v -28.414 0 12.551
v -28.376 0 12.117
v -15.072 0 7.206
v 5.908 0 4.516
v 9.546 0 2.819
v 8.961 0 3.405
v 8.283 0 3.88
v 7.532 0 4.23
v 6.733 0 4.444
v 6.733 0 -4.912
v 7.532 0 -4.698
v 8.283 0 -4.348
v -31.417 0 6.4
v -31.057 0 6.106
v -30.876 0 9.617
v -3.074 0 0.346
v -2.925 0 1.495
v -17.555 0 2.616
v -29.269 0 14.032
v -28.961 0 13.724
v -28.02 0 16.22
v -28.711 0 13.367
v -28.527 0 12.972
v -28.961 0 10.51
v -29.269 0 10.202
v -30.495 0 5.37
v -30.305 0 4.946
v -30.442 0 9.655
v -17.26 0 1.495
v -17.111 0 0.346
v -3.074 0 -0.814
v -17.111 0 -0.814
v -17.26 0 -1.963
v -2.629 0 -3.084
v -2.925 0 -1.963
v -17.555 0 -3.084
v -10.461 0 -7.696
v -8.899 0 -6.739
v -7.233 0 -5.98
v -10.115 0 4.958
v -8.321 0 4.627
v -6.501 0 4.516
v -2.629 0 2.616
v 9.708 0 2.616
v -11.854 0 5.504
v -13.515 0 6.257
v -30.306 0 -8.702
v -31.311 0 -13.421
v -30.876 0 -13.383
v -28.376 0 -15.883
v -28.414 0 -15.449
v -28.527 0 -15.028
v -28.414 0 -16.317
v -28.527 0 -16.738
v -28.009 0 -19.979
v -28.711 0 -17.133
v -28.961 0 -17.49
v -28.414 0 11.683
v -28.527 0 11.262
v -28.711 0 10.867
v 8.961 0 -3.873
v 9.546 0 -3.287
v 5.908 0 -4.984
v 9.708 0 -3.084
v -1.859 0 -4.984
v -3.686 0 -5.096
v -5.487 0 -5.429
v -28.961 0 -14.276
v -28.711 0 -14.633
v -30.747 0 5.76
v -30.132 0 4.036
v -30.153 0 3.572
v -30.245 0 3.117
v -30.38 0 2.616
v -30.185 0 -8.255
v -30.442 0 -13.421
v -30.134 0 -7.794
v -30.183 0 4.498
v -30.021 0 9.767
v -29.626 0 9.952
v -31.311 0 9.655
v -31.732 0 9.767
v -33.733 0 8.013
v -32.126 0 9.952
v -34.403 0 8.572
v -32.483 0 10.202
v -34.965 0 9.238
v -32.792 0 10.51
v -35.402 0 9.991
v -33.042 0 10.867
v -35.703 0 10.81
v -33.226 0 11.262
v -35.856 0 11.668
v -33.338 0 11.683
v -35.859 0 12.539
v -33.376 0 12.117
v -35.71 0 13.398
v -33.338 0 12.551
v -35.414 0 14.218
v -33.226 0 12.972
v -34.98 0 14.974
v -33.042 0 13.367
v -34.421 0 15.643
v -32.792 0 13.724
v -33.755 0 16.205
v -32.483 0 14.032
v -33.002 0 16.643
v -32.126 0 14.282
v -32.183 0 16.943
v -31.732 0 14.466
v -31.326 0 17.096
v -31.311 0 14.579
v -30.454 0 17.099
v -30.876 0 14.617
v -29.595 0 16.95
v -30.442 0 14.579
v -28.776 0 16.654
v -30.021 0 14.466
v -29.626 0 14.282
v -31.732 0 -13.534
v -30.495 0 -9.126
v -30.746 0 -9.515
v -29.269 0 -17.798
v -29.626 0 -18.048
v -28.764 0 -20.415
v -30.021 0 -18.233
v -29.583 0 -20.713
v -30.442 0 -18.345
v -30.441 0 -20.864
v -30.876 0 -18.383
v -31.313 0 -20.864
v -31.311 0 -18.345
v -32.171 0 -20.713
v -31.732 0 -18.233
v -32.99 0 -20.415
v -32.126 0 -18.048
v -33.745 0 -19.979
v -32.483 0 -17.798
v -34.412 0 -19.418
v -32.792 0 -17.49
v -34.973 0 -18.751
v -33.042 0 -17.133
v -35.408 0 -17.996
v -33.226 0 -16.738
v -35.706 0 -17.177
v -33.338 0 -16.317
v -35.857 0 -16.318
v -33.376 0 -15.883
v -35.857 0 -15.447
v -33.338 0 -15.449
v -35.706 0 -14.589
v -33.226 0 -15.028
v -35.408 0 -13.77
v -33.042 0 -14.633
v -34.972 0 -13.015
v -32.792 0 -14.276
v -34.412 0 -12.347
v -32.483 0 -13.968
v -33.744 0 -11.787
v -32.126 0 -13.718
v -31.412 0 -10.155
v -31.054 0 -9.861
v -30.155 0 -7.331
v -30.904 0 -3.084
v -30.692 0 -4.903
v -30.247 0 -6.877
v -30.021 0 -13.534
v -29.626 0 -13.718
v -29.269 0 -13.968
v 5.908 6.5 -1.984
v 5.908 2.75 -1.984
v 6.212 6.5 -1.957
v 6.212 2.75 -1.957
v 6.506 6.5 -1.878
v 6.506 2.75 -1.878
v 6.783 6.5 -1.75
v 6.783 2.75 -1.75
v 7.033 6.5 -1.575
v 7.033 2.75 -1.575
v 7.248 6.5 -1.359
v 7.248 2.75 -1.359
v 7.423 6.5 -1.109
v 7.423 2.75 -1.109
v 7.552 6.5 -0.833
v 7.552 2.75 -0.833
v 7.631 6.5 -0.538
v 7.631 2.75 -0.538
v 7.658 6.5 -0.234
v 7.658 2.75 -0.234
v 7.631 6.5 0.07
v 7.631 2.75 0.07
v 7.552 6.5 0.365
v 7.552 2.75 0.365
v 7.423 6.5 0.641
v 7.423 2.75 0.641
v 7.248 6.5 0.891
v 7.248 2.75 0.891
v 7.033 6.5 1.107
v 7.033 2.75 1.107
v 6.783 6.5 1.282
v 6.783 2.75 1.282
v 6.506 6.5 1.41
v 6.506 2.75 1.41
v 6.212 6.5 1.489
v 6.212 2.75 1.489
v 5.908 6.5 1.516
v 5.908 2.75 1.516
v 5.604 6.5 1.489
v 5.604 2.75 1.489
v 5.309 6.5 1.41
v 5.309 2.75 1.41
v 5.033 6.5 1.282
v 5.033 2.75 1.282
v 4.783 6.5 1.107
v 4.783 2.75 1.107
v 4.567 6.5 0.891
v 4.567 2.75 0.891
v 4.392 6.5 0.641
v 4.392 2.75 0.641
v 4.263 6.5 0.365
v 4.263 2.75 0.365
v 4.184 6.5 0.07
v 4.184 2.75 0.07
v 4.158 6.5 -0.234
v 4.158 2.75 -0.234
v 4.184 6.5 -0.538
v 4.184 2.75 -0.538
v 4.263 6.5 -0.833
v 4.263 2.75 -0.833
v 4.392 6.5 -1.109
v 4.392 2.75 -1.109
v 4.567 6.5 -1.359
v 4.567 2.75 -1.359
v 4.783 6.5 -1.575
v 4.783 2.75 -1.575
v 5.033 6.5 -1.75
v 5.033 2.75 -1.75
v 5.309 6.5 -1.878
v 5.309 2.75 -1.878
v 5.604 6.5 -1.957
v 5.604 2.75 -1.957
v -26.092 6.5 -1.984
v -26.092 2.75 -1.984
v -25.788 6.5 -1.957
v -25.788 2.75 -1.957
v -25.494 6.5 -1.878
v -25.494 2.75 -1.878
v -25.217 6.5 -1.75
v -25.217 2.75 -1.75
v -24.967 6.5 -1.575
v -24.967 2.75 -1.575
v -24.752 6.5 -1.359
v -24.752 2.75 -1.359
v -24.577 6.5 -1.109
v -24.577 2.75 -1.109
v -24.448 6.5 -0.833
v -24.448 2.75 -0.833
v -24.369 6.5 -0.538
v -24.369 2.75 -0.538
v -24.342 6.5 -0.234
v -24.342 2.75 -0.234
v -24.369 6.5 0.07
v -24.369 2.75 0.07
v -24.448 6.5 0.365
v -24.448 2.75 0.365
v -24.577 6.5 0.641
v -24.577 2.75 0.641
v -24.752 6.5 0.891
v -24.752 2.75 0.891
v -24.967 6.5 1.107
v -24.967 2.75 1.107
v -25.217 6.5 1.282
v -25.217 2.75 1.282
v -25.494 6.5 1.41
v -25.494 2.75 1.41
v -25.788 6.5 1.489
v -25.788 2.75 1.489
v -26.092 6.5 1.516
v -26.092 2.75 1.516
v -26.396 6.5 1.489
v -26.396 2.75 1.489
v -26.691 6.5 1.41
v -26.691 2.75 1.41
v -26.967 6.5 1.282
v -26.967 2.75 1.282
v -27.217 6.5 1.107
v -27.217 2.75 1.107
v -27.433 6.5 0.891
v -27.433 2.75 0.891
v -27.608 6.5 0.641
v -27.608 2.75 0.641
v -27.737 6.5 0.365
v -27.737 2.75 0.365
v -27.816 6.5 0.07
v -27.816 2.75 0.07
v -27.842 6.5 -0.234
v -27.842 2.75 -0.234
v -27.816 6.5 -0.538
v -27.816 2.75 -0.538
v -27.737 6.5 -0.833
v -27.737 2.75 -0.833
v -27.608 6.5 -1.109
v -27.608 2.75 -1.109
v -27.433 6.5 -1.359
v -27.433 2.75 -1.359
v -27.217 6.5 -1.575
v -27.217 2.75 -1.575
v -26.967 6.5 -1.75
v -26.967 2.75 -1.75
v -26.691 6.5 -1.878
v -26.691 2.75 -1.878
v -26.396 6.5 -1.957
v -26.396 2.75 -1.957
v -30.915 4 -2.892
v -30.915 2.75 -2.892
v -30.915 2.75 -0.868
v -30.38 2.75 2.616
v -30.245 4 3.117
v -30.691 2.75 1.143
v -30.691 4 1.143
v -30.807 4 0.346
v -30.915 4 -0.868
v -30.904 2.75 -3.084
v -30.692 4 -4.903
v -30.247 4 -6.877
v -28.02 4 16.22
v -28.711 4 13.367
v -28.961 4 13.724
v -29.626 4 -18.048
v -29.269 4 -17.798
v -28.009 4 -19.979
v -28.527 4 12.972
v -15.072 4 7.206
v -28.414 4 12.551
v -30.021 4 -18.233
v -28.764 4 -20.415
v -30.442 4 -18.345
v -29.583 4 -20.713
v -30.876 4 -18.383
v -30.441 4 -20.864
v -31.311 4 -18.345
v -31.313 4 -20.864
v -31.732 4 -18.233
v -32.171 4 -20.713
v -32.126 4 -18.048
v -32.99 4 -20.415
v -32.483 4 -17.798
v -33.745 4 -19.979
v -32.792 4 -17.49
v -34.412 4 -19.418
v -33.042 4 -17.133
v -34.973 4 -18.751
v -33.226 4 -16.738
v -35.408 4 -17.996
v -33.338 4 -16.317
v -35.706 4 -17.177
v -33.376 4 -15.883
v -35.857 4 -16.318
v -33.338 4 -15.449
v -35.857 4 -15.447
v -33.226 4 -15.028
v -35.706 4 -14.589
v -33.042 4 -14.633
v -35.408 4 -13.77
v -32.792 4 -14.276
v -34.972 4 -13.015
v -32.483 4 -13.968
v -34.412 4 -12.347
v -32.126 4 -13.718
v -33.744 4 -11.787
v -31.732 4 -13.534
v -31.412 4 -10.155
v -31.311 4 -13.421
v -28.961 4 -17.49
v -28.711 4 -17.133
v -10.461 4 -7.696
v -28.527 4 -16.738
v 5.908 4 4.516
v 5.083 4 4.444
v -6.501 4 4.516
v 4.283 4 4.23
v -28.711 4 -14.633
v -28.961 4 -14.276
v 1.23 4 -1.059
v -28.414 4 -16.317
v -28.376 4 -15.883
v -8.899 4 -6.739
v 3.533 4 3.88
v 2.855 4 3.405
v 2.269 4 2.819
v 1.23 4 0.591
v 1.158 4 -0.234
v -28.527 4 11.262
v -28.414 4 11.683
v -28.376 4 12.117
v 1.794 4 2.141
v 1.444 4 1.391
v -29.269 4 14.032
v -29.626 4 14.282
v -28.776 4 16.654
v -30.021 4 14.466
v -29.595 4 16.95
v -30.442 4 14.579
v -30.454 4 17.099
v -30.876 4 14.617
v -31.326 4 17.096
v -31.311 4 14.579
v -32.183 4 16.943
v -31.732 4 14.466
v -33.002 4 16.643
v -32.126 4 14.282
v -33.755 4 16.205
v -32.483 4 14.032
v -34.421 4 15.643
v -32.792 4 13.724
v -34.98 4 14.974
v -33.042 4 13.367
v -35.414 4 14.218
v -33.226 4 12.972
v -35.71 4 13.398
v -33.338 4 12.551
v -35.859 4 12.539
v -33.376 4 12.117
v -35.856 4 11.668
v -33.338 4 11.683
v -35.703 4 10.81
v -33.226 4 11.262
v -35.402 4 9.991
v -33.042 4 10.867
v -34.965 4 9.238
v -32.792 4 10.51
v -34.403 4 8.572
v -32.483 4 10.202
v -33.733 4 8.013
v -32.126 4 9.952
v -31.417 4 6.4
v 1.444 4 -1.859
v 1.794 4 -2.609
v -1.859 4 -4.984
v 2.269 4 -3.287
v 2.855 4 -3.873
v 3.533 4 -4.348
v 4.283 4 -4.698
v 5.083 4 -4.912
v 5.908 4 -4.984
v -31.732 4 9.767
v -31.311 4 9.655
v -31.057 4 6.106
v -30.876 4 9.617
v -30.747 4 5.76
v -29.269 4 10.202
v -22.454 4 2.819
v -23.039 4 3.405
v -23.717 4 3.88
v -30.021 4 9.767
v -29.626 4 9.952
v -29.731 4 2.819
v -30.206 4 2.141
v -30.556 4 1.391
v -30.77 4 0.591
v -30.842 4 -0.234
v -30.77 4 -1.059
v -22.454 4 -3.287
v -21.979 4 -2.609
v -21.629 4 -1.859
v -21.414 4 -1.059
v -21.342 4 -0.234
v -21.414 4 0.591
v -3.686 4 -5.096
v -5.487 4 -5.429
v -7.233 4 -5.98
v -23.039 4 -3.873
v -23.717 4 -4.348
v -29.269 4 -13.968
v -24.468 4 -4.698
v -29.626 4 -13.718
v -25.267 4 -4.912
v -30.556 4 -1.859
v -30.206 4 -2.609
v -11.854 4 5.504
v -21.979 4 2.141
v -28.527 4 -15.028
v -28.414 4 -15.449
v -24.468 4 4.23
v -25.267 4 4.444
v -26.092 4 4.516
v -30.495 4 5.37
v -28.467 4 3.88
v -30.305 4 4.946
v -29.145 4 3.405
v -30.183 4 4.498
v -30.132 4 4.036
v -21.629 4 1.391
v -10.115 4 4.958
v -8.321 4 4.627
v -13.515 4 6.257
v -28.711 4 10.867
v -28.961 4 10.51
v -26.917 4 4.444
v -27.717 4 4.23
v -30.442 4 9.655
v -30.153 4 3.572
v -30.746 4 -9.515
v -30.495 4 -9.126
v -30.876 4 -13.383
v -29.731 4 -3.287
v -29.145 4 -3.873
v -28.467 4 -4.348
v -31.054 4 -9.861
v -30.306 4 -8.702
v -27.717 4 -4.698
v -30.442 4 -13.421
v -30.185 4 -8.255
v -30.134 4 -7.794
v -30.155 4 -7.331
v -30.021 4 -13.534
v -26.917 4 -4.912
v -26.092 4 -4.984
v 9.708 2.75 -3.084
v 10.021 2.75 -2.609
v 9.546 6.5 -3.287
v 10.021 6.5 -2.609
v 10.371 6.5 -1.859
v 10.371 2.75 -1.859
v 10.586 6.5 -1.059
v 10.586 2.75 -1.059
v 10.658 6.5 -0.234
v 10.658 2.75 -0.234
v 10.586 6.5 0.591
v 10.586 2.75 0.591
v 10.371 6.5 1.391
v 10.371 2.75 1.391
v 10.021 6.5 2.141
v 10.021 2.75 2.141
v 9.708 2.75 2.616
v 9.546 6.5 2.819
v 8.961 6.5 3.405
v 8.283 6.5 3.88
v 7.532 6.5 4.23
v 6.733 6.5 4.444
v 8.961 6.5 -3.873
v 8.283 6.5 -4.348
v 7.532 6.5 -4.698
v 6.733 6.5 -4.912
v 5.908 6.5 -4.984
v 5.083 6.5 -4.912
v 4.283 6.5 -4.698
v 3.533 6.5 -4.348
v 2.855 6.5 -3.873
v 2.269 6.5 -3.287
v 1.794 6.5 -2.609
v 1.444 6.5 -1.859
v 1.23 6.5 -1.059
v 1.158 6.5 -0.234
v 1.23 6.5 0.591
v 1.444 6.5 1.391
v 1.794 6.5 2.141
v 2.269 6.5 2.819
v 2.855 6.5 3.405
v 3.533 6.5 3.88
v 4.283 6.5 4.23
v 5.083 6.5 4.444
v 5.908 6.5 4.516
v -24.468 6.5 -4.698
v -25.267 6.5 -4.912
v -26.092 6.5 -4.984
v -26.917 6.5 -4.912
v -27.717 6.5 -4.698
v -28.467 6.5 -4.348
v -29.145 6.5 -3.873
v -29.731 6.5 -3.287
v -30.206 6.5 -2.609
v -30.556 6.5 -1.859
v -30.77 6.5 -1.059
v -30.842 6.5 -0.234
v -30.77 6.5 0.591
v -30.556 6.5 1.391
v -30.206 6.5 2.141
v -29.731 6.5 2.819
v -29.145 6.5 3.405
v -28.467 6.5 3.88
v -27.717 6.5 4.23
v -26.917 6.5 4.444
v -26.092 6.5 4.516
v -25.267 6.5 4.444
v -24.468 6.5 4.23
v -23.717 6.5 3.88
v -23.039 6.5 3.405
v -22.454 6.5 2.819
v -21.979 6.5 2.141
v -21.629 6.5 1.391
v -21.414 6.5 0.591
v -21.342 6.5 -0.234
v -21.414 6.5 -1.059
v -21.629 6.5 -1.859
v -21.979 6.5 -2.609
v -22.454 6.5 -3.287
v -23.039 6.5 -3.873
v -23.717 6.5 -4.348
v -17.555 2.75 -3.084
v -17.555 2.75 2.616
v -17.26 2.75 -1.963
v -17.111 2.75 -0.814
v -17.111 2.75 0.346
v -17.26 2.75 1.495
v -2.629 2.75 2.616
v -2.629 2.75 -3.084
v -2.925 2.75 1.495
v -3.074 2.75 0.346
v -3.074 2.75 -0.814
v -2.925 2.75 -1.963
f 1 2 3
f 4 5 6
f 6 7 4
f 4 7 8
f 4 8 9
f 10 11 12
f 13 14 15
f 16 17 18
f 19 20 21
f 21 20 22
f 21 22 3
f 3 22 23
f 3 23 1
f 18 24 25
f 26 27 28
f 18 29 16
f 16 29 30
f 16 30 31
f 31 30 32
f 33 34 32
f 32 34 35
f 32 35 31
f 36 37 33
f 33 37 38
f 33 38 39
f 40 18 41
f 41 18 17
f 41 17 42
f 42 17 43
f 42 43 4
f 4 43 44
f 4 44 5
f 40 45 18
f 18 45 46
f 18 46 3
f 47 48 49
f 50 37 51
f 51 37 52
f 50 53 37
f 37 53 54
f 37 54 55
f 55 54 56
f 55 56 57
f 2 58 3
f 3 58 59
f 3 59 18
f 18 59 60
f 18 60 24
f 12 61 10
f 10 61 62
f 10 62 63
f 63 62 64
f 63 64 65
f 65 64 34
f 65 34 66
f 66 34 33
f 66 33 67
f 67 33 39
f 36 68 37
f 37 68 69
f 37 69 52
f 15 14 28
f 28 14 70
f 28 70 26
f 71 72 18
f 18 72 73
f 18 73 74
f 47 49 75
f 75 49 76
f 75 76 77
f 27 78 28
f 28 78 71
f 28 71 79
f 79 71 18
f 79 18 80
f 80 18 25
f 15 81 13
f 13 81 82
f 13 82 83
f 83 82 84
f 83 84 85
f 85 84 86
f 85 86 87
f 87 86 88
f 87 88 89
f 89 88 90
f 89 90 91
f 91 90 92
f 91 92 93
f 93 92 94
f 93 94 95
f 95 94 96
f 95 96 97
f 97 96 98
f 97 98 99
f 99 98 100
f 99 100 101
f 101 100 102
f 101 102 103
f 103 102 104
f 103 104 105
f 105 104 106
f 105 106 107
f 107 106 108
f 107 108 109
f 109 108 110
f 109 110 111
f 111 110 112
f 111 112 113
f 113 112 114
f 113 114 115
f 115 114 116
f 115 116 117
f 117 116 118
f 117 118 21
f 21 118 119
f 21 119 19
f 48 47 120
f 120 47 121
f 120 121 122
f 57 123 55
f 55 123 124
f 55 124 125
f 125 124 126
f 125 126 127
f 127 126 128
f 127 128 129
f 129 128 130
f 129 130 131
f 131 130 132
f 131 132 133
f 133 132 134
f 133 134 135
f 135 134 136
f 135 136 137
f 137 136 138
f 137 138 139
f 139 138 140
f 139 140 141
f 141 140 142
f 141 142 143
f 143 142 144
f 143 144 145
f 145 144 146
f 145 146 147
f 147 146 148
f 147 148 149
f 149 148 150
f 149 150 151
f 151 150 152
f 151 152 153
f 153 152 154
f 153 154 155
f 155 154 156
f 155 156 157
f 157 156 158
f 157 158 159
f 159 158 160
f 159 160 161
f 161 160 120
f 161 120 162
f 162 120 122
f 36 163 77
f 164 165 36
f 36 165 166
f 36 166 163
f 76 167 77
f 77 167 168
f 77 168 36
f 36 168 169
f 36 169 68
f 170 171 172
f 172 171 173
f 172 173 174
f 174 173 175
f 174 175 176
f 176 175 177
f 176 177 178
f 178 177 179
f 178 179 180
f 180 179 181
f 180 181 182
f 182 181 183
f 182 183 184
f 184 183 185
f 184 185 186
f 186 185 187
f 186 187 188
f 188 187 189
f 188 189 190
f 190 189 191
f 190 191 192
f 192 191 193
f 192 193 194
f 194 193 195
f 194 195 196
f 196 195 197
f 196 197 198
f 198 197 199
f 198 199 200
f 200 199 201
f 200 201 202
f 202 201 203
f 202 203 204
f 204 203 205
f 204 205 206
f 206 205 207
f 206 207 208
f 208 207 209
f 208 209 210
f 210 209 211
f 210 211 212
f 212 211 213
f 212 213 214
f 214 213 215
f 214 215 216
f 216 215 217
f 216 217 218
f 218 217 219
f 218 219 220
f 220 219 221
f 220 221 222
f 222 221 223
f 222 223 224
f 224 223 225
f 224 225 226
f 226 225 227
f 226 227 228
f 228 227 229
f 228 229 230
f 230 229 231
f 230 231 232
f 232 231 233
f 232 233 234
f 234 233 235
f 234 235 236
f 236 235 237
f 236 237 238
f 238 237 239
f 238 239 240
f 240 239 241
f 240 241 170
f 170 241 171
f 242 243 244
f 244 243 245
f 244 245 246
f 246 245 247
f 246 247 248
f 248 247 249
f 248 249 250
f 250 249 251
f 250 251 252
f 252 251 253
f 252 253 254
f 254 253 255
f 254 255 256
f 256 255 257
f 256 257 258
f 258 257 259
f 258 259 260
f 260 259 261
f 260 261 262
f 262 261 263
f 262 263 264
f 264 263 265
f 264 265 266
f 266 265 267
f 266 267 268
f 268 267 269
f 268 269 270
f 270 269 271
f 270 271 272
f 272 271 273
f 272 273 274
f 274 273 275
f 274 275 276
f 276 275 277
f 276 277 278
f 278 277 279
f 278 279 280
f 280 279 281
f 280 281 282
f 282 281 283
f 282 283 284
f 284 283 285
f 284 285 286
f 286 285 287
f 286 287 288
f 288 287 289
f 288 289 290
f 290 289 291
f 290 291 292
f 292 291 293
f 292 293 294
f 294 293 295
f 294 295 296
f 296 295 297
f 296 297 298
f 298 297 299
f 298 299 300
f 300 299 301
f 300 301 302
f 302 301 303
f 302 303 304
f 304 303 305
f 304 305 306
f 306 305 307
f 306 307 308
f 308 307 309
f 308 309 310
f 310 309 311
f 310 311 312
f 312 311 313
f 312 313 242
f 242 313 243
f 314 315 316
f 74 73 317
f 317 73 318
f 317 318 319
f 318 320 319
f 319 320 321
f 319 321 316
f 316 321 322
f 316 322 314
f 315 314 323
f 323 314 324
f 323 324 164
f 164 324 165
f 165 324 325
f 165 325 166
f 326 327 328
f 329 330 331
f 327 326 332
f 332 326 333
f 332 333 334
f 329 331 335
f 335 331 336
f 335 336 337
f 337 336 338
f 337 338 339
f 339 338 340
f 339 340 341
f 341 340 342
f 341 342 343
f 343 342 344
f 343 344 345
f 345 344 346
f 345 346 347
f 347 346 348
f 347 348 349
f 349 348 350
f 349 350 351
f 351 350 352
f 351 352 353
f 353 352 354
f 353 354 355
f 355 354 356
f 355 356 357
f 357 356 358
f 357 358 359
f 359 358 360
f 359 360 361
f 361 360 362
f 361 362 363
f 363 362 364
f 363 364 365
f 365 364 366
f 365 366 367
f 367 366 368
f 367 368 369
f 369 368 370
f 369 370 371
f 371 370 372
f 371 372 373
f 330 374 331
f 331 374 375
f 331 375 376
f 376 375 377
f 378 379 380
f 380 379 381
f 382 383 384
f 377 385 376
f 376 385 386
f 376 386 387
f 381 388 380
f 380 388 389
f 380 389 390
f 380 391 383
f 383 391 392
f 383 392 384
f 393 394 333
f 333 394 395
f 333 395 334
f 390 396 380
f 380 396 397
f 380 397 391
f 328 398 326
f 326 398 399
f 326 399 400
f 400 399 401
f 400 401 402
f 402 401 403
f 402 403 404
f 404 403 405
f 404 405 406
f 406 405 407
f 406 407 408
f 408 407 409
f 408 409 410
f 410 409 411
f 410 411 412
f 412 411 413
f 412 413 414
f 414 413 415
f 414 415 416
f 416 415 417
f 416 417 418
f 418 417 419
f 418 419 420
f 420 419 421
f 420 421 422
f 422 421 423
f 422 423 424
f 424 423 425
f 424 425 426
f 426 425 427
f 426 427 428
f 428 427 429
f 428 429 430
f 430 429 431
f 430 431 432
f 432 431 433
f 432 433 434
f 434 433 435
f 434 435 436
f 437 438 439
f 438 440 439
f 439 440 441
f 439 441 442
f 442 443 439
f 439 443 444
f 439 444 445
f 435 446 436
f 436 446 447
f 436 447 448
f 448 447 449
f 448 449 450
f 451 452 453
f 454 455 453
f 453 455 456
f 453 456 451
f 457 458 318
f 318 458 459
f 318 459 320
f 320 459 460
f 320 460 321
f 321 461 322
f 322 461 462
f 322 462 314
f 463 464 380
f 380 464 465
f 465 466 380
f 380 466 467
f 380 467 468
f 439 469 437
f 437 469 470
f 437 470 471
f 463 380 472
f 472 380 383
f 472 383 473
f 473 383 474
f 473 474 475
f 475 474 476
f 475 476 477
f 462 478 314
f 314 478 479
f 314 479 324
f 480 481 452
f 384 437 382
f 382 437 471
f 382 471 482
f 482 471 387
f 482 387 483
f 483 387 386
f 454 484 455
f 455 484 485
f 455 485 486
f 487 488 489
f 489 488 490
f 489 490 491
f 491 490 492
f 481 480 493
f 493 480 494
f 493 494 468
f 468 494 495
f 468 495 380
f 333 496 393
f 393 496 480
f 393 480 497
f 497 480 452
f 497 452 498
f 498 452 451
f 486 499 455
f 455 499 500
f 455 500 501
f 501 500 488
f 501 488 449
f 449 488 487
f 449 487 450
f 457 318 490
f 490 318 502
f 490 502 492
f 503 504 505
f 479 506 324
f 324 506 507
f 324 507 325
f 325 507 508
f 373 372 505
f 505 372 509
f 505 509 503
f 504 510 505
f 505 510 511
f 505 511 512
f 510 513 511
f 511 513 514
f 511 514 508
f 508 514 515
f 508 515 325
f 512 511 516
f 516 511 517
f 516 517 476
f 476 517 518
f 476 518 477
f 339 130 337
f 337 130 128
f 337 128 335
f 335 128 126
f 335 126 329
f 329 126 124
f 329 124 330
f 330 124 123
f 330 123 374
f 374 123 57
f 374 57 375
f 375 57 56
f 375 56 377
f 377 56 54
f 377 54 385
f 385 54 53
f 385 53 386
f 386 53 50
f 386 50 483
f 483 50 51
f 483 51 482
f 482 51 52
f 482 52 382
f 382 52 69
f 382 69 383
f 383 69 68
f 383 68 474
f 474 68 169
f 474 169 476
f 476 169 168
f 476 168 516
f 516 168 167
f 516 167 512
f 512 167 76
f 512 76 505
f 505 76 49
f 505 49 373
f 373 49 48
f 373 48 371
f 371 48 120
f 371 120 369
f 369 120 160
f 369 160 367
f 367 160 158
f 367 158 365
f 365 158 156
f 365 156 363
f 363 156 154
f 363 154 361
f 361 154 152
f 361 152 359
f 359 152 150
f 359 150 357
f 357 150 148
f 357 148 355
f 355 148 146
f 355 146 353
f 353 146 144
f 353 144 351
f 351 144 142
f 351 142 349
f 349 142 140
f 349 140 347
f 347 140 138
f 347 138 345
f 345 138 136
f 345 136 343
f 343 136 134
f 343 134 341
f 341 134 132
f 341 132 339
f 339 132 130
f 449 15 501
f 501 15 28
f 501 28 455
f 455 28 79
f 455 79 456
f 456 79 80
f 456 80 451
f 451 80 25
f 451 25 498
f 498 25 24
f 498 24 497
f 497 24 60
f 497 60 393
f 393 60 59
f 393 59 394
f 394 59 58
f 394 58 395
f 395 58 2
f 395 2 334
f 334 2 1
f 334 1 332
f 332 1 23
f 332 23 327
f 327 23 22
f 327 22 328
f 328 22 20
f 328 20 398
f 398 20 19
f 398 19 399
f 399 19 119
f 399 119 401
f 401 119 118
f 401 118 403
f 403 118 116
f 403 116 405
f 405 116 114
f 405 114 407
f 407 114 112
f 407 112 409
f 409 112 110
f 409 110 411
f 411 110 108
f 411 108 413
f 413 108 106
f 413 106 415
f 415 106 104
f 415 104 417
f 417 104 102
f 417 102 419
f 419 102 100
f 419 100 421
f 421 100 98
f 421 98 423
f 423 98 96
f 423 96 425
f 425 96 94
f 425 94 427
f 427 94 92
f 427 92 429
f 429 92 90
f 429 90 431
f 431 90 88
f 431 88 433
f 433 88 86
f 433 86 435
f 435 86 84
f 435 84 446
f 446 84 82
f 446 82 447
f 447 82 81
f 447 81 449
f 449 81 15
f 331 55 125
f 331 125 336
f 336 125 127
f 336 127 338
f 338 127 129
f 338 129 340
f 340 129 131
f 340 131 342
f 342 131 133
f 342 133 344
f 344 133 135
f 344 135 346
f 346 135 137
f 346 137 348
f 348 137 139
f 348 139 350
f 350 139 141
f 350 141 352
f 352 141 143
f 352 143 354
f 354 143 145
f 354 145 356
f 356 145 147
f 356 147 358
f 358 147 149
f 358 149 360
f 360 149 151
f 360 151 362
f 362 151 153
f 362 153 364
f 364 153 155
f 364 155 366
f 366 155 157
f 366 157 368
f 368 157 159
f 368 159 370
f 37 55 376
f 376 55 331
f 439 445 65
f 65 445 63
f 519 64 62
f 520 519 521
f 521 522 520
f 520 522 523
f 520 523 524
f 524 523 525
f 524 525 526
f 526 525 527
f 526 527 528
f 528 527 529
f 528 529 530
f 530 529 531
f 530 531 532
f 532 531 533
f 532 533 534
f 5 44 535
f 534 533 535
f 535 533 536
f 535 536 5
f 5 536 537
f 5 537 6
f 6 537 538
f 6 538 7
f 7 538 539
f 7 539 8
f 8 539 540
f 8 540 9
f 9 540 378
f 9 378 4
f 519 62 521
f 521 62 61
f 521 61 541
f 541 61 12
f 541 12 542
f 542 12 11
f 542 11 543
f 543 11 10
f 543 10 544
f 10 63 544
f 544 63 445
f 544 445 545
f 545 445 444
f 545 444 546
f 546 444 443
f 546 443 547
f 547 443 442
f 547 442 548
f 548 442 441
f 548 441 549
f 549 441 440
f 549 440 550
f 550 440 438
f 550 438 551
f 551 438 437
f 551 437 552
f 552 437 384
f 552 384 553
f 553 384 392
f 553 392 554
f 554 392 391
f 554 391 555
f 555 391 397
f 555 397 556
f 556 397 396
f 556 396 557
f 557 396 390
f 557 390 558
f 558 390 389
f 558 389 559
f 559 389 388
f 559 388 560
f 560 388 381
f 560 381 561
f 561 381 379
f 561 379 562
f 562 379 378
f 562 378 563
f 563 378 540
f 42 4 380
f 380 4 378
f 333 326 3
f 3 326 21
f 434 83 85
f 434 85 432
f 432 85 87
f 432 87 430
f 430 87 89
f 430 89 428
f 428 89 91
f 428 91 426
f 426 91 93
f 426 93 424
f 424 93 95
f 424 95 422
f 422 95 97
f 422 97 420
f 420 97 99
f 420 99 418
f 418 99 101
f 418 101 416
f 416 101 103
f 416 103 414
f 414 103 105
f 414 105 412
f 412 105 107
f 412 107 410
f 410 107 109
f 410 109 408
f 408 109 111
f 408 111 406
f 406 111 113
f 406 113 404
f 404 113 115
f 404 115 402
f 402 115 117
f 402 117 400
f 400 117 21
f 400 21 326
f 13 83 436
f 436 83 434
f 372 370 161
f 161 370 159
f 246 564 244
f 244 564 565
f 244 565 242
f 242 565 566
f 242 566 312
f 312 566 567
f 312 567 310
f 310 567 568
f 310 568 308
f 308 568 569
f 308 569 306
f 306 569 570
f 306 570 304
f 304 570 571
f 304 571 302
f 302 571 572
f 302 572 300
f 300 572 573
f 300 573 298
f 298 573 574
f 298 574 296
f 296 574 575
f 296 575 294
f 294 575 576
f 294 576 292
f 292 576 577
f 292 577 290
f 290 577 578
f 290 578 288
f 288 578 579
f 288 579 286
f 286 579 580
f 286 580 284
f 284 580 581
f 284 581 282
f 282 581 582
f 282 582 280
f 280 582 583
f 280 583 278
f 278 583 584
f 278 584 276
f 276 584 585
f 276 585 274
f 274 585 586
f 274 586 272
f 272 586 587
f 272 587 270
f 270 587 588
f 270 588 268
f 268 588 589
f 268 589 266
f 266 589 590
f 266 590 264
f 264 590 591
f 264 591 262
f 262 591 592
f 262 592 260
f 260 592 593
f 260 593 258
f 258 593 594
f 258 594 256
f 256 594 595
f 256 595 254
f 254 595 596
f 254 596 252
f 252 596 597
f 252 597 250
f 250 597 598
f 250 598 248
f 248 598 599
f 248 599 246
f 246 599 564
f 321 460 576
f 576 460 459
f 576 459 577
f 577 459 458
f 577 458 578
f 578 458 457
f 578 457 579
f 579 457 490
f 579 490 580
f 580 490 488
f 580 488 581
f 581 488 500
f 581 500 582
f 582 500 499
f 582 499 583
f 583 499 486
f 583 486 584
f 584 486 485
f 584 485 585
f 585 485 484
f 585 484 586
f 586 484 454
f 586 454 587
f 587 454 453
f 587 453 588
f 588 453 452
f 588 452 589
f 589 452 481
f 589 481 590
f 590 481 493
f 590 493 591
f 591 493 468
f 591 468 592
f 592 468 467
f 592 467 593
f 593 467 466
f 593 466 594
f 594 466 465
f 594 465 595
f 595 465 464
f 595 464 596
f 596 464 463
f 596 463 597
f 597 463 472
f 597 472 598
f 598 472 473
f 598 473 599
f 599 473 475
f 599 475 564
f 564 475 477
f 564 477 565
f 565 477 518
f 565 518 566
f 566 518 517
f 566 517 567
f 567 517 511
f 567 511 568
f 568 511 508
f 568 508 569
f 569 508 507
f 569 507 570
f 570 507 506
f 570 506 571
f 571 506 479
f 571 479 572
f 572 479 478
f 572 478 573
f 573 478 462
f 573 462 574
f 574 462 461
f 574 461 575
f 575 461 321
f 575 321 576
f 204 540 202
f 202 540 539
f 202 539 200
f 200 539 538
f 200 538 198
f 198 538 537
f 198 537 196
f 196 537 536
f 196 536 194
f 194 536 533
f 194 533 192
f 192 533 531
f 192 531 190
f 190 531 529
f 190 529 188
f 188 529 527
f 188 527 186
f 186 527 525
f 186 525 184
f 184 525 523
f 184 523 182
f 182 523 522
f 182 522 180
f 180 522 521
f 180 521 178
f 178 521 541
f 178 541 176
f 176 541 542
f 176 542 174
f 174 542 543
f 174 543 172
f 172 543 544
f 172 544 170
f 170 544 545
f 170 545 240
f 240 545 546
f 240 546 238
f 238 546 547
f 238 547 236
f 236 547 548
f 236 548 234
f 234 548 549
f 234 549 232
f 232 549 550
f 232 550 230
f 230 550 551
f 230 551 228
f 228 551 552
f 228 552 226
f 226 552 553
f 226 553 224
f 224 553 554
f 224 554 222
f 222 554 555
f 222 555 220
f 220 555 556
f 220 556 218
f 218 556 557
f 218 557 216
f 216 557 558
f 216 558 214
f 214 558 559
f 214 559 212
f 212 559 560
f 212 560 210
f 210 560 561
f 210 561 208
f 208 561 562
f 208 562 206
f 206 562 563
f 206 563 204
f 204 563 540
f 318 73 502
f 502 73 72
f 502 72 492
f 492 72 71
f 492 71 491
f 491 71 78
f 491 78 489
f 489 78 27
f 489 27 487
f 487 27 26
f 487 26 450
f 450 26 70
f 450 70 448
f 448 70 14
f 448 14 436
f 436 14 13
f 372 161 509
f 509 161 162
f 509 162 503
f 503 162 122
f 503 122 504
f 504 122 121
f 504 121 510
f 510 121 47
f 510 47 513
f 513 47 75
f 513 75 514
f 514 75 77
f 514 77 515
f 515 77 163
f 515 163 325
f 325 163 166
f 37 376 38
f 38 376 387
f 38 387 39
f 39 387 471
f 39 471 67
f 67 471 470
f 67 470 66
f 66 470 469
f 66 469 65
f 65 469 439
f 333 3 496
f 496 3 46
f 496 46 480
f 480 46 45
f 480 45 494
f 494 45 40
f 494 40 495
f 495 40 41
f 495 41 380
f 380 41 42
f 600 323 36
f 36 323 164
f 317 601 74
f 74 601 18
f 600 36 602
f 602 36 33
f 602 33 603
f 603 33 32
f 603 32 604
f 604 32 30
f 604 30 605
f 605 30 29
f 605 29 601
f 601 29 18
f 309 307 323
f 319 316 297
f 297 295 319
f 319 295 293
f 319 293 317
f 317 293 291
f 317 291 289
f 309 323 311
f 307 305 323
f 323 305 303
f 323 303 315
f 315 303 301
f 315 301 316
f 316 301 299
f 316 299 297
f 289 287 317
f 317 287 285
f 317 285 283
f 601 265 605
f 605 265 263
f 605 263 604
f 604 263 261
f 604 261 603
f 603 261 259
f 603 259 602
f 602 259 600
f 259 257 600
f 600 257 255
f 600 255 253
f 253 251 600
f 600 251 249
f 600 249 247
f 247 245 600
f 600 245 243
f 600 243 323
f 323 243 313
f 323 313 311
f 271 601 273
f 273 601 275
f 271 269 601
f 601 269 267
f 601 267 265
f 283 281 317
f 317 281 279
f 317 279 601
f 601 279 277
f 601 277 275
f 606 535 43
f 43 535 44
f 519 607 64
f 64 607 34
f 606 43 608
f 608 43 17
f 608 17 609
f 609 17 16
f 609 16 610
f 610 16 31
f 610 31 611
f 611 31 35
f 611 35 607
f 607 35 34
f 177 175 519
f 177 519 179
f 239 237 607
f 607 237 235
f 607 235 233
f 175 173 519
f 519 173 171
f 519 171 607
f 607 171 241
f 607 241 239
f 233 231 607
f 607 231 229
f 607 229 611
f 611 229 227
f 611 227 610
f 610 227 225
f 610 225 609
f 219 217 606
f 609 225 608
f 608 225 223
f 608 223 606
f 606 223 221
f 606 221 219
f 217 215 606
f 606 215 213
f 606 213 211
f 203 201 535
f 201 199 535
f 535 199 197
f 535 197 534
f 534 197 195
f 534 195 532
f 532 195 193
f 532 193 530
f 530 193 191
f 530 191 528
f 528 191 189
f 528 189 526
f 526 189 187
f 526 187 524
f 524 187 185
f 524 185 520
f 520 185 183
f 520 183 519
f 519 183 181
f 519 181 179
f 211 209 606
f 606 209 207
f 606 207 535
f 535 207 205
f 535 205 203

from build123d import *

# Parameters (mm, degrees)
SKETCH1_R           = 2.5
SKETCH1_R_2         = 1.75
BOSS_EXTRUDE1_DEPTH = 4
SKETCH3_R           = 4.75
SKETCH3_R_2         = 1.75
BOSS_EXTRUDE2_DEPTH = 2.5
FILLET1_R           = 3
FILLET2_R           = 15
SKETCH4_R           = 1.75
CUT_EXTRUDE1_DEPTH  = 2.75


with BuildPart() as part:
    # Sketch1 → Boss-Extrude1 (new body)
    with BuildSketch(Plane(origin=(0, 0, 0), x_dir=(1, 0, 0), z_dir=(0, 1, 0))):
        with BuildLine():
            Line((-33.743770102, 11.787151842), (-29.558909379, 8.857749335))
            ThreePointArc((-29.558909379, 8.857749335), (-30.943257909, 1.876678146), (-29.553838003, -5.103385472))
            Line((-29.553838003, -5.103385472), (-33.733356926, -8.013259417))
            ThreePointArc((-33.733356926, -8.013259417), (-34.979887519, -14.973587102), (-28.019559835, -16.220117695))
            Line((-28.019559835, -16.220117695), (-11.208684115, -4.516012477))
            Line((-11.208684115, -4.516012477), (5.907787468, -4.516012477))
            ThreePointArc((5.907787468, -4.516012477), (10.657787468, 0.233987523), (5.907787468, 4.983987523))
            Line((5.907787468, 4.983987523), (-6.587027339, 4.983987523))
            Line((-6.587027339, 4.983987523), (-28.009146659, 19.979471047))
            ThreePointArc((-28.009146659, 19.979471047), (-34.972617983, 18.750623166), (-33.743770102, 11.787151842))
        make_face()
        with Locations((-30.87645838, 15.883311444)):
            Circle(SKETCH1_R, mode=Mode.SUBTRACT)
        with Locations((-30.87645838, -12.116688556)):
            Circle(SKETCH1_R, mode=Mode.SUBTRACT)
        with Locations((-26.092212532, 0.233987523)):
            Circle(SKETCH1_R_2, mode=Mode.SUBTRACT)
        with Locations((5.907787468, 0.233987523)):
            Circle(SKETCH1_R_2, mode=Mode.SUBTRACT)
    extrude(amount=BOSS_EXTRUDE1_DEPTH)

    # Sketch3 → Boss-Extrude2 (add)
    with BuildSketch(Plane(origin=(0, 4, 0), x_dir=(1, 0, 0), z_dir=(0, 1, 0))):
        with Locations((-26.092212532, 0.233987523)):
            Circle(SKETCH3_R)
        with Locations((-26.092212532, 0.233987523)):
            Circle(SKETCH3_R_2, mode=Mode.SUBTRACT)
        with Locations((5.907787468, 0.233987523)):
            Circle(SKETCH3_R)
        with Locations((5.907787468, 0.233987523)):
            Circle(SKETCH3_R_2, mode=Mode.SUBTRACT)
    extrude(amount=BOSS_EXTRUDE2_DEPTH)

    # Fillet1
    fillet1_edges = [part.edges().sort_by_distance(p)[0] for p in [
        (-29.553838003, 2, 5.103385472),
        (-29.558909379, 2, -8.857749335),
    ]]
    fillet(fillet1_edges, radius=FILLET1_R)

    # Fillet2
    fillet2_edges = [part.edges().sort_by_distance(p)[0] for p in [
        (-11.208684115, 2, 4.516012477),
        (-6.587027339, 2, -4.983987523),
    ]]
    fillet(fillet2_edges, radius=FILLET2_R)

    # Sketch4 → Cut-Extrude1 (cut)
    with BuildSketch(Plane.XZ):
        with BuildLine():
            ThreePointArc((-2.629044497, 2.616012477), (-3.092212532, -0.233987523), (-2.629044497, -3.083987523))
            Line((-2.629044497, -3.083987523), (9.707787468, -3.083987523))
            ThreePointArc((9.707787468, -3.083987523), (10.657787468, -0.233987523), (9.707787468, 2.616012477))
            Line((9.707787468, 2.616012477), (-2.629044497, 2.616012477))
        make_face()
        with Locations((5.907787468, -0.233987523)):
            Circle(SKETCH4_R, mode=Mode.SUBTRACT)
        with BuildLine():
            Line((-30.90374362, -3.083987523), (-17.555380567, -3.083987523))
            ThreePointArc((-17.555380567, -3.083987523), (-17.092212532, -0.233987523), (-17.555380567, 2.616012477))
            Line((-17.555380567, 2.616012477), (-30.380287253, 2.616012477))
            ThreePointArc((-30.380287253, 2.616012477), (-30.866740114, -0.213350056), (-30.90374362, -3.083987523))
        make_face()
        with Locations((-26.092212532, -0.233987523)):
            Circle(SKETCH4_R, mode=Mode.SUBTRACT)
    extrude(amount=-CUT_EXTRUDE1_DEPTH, mode=Mode.SUBTRACT)


solid = part.part
